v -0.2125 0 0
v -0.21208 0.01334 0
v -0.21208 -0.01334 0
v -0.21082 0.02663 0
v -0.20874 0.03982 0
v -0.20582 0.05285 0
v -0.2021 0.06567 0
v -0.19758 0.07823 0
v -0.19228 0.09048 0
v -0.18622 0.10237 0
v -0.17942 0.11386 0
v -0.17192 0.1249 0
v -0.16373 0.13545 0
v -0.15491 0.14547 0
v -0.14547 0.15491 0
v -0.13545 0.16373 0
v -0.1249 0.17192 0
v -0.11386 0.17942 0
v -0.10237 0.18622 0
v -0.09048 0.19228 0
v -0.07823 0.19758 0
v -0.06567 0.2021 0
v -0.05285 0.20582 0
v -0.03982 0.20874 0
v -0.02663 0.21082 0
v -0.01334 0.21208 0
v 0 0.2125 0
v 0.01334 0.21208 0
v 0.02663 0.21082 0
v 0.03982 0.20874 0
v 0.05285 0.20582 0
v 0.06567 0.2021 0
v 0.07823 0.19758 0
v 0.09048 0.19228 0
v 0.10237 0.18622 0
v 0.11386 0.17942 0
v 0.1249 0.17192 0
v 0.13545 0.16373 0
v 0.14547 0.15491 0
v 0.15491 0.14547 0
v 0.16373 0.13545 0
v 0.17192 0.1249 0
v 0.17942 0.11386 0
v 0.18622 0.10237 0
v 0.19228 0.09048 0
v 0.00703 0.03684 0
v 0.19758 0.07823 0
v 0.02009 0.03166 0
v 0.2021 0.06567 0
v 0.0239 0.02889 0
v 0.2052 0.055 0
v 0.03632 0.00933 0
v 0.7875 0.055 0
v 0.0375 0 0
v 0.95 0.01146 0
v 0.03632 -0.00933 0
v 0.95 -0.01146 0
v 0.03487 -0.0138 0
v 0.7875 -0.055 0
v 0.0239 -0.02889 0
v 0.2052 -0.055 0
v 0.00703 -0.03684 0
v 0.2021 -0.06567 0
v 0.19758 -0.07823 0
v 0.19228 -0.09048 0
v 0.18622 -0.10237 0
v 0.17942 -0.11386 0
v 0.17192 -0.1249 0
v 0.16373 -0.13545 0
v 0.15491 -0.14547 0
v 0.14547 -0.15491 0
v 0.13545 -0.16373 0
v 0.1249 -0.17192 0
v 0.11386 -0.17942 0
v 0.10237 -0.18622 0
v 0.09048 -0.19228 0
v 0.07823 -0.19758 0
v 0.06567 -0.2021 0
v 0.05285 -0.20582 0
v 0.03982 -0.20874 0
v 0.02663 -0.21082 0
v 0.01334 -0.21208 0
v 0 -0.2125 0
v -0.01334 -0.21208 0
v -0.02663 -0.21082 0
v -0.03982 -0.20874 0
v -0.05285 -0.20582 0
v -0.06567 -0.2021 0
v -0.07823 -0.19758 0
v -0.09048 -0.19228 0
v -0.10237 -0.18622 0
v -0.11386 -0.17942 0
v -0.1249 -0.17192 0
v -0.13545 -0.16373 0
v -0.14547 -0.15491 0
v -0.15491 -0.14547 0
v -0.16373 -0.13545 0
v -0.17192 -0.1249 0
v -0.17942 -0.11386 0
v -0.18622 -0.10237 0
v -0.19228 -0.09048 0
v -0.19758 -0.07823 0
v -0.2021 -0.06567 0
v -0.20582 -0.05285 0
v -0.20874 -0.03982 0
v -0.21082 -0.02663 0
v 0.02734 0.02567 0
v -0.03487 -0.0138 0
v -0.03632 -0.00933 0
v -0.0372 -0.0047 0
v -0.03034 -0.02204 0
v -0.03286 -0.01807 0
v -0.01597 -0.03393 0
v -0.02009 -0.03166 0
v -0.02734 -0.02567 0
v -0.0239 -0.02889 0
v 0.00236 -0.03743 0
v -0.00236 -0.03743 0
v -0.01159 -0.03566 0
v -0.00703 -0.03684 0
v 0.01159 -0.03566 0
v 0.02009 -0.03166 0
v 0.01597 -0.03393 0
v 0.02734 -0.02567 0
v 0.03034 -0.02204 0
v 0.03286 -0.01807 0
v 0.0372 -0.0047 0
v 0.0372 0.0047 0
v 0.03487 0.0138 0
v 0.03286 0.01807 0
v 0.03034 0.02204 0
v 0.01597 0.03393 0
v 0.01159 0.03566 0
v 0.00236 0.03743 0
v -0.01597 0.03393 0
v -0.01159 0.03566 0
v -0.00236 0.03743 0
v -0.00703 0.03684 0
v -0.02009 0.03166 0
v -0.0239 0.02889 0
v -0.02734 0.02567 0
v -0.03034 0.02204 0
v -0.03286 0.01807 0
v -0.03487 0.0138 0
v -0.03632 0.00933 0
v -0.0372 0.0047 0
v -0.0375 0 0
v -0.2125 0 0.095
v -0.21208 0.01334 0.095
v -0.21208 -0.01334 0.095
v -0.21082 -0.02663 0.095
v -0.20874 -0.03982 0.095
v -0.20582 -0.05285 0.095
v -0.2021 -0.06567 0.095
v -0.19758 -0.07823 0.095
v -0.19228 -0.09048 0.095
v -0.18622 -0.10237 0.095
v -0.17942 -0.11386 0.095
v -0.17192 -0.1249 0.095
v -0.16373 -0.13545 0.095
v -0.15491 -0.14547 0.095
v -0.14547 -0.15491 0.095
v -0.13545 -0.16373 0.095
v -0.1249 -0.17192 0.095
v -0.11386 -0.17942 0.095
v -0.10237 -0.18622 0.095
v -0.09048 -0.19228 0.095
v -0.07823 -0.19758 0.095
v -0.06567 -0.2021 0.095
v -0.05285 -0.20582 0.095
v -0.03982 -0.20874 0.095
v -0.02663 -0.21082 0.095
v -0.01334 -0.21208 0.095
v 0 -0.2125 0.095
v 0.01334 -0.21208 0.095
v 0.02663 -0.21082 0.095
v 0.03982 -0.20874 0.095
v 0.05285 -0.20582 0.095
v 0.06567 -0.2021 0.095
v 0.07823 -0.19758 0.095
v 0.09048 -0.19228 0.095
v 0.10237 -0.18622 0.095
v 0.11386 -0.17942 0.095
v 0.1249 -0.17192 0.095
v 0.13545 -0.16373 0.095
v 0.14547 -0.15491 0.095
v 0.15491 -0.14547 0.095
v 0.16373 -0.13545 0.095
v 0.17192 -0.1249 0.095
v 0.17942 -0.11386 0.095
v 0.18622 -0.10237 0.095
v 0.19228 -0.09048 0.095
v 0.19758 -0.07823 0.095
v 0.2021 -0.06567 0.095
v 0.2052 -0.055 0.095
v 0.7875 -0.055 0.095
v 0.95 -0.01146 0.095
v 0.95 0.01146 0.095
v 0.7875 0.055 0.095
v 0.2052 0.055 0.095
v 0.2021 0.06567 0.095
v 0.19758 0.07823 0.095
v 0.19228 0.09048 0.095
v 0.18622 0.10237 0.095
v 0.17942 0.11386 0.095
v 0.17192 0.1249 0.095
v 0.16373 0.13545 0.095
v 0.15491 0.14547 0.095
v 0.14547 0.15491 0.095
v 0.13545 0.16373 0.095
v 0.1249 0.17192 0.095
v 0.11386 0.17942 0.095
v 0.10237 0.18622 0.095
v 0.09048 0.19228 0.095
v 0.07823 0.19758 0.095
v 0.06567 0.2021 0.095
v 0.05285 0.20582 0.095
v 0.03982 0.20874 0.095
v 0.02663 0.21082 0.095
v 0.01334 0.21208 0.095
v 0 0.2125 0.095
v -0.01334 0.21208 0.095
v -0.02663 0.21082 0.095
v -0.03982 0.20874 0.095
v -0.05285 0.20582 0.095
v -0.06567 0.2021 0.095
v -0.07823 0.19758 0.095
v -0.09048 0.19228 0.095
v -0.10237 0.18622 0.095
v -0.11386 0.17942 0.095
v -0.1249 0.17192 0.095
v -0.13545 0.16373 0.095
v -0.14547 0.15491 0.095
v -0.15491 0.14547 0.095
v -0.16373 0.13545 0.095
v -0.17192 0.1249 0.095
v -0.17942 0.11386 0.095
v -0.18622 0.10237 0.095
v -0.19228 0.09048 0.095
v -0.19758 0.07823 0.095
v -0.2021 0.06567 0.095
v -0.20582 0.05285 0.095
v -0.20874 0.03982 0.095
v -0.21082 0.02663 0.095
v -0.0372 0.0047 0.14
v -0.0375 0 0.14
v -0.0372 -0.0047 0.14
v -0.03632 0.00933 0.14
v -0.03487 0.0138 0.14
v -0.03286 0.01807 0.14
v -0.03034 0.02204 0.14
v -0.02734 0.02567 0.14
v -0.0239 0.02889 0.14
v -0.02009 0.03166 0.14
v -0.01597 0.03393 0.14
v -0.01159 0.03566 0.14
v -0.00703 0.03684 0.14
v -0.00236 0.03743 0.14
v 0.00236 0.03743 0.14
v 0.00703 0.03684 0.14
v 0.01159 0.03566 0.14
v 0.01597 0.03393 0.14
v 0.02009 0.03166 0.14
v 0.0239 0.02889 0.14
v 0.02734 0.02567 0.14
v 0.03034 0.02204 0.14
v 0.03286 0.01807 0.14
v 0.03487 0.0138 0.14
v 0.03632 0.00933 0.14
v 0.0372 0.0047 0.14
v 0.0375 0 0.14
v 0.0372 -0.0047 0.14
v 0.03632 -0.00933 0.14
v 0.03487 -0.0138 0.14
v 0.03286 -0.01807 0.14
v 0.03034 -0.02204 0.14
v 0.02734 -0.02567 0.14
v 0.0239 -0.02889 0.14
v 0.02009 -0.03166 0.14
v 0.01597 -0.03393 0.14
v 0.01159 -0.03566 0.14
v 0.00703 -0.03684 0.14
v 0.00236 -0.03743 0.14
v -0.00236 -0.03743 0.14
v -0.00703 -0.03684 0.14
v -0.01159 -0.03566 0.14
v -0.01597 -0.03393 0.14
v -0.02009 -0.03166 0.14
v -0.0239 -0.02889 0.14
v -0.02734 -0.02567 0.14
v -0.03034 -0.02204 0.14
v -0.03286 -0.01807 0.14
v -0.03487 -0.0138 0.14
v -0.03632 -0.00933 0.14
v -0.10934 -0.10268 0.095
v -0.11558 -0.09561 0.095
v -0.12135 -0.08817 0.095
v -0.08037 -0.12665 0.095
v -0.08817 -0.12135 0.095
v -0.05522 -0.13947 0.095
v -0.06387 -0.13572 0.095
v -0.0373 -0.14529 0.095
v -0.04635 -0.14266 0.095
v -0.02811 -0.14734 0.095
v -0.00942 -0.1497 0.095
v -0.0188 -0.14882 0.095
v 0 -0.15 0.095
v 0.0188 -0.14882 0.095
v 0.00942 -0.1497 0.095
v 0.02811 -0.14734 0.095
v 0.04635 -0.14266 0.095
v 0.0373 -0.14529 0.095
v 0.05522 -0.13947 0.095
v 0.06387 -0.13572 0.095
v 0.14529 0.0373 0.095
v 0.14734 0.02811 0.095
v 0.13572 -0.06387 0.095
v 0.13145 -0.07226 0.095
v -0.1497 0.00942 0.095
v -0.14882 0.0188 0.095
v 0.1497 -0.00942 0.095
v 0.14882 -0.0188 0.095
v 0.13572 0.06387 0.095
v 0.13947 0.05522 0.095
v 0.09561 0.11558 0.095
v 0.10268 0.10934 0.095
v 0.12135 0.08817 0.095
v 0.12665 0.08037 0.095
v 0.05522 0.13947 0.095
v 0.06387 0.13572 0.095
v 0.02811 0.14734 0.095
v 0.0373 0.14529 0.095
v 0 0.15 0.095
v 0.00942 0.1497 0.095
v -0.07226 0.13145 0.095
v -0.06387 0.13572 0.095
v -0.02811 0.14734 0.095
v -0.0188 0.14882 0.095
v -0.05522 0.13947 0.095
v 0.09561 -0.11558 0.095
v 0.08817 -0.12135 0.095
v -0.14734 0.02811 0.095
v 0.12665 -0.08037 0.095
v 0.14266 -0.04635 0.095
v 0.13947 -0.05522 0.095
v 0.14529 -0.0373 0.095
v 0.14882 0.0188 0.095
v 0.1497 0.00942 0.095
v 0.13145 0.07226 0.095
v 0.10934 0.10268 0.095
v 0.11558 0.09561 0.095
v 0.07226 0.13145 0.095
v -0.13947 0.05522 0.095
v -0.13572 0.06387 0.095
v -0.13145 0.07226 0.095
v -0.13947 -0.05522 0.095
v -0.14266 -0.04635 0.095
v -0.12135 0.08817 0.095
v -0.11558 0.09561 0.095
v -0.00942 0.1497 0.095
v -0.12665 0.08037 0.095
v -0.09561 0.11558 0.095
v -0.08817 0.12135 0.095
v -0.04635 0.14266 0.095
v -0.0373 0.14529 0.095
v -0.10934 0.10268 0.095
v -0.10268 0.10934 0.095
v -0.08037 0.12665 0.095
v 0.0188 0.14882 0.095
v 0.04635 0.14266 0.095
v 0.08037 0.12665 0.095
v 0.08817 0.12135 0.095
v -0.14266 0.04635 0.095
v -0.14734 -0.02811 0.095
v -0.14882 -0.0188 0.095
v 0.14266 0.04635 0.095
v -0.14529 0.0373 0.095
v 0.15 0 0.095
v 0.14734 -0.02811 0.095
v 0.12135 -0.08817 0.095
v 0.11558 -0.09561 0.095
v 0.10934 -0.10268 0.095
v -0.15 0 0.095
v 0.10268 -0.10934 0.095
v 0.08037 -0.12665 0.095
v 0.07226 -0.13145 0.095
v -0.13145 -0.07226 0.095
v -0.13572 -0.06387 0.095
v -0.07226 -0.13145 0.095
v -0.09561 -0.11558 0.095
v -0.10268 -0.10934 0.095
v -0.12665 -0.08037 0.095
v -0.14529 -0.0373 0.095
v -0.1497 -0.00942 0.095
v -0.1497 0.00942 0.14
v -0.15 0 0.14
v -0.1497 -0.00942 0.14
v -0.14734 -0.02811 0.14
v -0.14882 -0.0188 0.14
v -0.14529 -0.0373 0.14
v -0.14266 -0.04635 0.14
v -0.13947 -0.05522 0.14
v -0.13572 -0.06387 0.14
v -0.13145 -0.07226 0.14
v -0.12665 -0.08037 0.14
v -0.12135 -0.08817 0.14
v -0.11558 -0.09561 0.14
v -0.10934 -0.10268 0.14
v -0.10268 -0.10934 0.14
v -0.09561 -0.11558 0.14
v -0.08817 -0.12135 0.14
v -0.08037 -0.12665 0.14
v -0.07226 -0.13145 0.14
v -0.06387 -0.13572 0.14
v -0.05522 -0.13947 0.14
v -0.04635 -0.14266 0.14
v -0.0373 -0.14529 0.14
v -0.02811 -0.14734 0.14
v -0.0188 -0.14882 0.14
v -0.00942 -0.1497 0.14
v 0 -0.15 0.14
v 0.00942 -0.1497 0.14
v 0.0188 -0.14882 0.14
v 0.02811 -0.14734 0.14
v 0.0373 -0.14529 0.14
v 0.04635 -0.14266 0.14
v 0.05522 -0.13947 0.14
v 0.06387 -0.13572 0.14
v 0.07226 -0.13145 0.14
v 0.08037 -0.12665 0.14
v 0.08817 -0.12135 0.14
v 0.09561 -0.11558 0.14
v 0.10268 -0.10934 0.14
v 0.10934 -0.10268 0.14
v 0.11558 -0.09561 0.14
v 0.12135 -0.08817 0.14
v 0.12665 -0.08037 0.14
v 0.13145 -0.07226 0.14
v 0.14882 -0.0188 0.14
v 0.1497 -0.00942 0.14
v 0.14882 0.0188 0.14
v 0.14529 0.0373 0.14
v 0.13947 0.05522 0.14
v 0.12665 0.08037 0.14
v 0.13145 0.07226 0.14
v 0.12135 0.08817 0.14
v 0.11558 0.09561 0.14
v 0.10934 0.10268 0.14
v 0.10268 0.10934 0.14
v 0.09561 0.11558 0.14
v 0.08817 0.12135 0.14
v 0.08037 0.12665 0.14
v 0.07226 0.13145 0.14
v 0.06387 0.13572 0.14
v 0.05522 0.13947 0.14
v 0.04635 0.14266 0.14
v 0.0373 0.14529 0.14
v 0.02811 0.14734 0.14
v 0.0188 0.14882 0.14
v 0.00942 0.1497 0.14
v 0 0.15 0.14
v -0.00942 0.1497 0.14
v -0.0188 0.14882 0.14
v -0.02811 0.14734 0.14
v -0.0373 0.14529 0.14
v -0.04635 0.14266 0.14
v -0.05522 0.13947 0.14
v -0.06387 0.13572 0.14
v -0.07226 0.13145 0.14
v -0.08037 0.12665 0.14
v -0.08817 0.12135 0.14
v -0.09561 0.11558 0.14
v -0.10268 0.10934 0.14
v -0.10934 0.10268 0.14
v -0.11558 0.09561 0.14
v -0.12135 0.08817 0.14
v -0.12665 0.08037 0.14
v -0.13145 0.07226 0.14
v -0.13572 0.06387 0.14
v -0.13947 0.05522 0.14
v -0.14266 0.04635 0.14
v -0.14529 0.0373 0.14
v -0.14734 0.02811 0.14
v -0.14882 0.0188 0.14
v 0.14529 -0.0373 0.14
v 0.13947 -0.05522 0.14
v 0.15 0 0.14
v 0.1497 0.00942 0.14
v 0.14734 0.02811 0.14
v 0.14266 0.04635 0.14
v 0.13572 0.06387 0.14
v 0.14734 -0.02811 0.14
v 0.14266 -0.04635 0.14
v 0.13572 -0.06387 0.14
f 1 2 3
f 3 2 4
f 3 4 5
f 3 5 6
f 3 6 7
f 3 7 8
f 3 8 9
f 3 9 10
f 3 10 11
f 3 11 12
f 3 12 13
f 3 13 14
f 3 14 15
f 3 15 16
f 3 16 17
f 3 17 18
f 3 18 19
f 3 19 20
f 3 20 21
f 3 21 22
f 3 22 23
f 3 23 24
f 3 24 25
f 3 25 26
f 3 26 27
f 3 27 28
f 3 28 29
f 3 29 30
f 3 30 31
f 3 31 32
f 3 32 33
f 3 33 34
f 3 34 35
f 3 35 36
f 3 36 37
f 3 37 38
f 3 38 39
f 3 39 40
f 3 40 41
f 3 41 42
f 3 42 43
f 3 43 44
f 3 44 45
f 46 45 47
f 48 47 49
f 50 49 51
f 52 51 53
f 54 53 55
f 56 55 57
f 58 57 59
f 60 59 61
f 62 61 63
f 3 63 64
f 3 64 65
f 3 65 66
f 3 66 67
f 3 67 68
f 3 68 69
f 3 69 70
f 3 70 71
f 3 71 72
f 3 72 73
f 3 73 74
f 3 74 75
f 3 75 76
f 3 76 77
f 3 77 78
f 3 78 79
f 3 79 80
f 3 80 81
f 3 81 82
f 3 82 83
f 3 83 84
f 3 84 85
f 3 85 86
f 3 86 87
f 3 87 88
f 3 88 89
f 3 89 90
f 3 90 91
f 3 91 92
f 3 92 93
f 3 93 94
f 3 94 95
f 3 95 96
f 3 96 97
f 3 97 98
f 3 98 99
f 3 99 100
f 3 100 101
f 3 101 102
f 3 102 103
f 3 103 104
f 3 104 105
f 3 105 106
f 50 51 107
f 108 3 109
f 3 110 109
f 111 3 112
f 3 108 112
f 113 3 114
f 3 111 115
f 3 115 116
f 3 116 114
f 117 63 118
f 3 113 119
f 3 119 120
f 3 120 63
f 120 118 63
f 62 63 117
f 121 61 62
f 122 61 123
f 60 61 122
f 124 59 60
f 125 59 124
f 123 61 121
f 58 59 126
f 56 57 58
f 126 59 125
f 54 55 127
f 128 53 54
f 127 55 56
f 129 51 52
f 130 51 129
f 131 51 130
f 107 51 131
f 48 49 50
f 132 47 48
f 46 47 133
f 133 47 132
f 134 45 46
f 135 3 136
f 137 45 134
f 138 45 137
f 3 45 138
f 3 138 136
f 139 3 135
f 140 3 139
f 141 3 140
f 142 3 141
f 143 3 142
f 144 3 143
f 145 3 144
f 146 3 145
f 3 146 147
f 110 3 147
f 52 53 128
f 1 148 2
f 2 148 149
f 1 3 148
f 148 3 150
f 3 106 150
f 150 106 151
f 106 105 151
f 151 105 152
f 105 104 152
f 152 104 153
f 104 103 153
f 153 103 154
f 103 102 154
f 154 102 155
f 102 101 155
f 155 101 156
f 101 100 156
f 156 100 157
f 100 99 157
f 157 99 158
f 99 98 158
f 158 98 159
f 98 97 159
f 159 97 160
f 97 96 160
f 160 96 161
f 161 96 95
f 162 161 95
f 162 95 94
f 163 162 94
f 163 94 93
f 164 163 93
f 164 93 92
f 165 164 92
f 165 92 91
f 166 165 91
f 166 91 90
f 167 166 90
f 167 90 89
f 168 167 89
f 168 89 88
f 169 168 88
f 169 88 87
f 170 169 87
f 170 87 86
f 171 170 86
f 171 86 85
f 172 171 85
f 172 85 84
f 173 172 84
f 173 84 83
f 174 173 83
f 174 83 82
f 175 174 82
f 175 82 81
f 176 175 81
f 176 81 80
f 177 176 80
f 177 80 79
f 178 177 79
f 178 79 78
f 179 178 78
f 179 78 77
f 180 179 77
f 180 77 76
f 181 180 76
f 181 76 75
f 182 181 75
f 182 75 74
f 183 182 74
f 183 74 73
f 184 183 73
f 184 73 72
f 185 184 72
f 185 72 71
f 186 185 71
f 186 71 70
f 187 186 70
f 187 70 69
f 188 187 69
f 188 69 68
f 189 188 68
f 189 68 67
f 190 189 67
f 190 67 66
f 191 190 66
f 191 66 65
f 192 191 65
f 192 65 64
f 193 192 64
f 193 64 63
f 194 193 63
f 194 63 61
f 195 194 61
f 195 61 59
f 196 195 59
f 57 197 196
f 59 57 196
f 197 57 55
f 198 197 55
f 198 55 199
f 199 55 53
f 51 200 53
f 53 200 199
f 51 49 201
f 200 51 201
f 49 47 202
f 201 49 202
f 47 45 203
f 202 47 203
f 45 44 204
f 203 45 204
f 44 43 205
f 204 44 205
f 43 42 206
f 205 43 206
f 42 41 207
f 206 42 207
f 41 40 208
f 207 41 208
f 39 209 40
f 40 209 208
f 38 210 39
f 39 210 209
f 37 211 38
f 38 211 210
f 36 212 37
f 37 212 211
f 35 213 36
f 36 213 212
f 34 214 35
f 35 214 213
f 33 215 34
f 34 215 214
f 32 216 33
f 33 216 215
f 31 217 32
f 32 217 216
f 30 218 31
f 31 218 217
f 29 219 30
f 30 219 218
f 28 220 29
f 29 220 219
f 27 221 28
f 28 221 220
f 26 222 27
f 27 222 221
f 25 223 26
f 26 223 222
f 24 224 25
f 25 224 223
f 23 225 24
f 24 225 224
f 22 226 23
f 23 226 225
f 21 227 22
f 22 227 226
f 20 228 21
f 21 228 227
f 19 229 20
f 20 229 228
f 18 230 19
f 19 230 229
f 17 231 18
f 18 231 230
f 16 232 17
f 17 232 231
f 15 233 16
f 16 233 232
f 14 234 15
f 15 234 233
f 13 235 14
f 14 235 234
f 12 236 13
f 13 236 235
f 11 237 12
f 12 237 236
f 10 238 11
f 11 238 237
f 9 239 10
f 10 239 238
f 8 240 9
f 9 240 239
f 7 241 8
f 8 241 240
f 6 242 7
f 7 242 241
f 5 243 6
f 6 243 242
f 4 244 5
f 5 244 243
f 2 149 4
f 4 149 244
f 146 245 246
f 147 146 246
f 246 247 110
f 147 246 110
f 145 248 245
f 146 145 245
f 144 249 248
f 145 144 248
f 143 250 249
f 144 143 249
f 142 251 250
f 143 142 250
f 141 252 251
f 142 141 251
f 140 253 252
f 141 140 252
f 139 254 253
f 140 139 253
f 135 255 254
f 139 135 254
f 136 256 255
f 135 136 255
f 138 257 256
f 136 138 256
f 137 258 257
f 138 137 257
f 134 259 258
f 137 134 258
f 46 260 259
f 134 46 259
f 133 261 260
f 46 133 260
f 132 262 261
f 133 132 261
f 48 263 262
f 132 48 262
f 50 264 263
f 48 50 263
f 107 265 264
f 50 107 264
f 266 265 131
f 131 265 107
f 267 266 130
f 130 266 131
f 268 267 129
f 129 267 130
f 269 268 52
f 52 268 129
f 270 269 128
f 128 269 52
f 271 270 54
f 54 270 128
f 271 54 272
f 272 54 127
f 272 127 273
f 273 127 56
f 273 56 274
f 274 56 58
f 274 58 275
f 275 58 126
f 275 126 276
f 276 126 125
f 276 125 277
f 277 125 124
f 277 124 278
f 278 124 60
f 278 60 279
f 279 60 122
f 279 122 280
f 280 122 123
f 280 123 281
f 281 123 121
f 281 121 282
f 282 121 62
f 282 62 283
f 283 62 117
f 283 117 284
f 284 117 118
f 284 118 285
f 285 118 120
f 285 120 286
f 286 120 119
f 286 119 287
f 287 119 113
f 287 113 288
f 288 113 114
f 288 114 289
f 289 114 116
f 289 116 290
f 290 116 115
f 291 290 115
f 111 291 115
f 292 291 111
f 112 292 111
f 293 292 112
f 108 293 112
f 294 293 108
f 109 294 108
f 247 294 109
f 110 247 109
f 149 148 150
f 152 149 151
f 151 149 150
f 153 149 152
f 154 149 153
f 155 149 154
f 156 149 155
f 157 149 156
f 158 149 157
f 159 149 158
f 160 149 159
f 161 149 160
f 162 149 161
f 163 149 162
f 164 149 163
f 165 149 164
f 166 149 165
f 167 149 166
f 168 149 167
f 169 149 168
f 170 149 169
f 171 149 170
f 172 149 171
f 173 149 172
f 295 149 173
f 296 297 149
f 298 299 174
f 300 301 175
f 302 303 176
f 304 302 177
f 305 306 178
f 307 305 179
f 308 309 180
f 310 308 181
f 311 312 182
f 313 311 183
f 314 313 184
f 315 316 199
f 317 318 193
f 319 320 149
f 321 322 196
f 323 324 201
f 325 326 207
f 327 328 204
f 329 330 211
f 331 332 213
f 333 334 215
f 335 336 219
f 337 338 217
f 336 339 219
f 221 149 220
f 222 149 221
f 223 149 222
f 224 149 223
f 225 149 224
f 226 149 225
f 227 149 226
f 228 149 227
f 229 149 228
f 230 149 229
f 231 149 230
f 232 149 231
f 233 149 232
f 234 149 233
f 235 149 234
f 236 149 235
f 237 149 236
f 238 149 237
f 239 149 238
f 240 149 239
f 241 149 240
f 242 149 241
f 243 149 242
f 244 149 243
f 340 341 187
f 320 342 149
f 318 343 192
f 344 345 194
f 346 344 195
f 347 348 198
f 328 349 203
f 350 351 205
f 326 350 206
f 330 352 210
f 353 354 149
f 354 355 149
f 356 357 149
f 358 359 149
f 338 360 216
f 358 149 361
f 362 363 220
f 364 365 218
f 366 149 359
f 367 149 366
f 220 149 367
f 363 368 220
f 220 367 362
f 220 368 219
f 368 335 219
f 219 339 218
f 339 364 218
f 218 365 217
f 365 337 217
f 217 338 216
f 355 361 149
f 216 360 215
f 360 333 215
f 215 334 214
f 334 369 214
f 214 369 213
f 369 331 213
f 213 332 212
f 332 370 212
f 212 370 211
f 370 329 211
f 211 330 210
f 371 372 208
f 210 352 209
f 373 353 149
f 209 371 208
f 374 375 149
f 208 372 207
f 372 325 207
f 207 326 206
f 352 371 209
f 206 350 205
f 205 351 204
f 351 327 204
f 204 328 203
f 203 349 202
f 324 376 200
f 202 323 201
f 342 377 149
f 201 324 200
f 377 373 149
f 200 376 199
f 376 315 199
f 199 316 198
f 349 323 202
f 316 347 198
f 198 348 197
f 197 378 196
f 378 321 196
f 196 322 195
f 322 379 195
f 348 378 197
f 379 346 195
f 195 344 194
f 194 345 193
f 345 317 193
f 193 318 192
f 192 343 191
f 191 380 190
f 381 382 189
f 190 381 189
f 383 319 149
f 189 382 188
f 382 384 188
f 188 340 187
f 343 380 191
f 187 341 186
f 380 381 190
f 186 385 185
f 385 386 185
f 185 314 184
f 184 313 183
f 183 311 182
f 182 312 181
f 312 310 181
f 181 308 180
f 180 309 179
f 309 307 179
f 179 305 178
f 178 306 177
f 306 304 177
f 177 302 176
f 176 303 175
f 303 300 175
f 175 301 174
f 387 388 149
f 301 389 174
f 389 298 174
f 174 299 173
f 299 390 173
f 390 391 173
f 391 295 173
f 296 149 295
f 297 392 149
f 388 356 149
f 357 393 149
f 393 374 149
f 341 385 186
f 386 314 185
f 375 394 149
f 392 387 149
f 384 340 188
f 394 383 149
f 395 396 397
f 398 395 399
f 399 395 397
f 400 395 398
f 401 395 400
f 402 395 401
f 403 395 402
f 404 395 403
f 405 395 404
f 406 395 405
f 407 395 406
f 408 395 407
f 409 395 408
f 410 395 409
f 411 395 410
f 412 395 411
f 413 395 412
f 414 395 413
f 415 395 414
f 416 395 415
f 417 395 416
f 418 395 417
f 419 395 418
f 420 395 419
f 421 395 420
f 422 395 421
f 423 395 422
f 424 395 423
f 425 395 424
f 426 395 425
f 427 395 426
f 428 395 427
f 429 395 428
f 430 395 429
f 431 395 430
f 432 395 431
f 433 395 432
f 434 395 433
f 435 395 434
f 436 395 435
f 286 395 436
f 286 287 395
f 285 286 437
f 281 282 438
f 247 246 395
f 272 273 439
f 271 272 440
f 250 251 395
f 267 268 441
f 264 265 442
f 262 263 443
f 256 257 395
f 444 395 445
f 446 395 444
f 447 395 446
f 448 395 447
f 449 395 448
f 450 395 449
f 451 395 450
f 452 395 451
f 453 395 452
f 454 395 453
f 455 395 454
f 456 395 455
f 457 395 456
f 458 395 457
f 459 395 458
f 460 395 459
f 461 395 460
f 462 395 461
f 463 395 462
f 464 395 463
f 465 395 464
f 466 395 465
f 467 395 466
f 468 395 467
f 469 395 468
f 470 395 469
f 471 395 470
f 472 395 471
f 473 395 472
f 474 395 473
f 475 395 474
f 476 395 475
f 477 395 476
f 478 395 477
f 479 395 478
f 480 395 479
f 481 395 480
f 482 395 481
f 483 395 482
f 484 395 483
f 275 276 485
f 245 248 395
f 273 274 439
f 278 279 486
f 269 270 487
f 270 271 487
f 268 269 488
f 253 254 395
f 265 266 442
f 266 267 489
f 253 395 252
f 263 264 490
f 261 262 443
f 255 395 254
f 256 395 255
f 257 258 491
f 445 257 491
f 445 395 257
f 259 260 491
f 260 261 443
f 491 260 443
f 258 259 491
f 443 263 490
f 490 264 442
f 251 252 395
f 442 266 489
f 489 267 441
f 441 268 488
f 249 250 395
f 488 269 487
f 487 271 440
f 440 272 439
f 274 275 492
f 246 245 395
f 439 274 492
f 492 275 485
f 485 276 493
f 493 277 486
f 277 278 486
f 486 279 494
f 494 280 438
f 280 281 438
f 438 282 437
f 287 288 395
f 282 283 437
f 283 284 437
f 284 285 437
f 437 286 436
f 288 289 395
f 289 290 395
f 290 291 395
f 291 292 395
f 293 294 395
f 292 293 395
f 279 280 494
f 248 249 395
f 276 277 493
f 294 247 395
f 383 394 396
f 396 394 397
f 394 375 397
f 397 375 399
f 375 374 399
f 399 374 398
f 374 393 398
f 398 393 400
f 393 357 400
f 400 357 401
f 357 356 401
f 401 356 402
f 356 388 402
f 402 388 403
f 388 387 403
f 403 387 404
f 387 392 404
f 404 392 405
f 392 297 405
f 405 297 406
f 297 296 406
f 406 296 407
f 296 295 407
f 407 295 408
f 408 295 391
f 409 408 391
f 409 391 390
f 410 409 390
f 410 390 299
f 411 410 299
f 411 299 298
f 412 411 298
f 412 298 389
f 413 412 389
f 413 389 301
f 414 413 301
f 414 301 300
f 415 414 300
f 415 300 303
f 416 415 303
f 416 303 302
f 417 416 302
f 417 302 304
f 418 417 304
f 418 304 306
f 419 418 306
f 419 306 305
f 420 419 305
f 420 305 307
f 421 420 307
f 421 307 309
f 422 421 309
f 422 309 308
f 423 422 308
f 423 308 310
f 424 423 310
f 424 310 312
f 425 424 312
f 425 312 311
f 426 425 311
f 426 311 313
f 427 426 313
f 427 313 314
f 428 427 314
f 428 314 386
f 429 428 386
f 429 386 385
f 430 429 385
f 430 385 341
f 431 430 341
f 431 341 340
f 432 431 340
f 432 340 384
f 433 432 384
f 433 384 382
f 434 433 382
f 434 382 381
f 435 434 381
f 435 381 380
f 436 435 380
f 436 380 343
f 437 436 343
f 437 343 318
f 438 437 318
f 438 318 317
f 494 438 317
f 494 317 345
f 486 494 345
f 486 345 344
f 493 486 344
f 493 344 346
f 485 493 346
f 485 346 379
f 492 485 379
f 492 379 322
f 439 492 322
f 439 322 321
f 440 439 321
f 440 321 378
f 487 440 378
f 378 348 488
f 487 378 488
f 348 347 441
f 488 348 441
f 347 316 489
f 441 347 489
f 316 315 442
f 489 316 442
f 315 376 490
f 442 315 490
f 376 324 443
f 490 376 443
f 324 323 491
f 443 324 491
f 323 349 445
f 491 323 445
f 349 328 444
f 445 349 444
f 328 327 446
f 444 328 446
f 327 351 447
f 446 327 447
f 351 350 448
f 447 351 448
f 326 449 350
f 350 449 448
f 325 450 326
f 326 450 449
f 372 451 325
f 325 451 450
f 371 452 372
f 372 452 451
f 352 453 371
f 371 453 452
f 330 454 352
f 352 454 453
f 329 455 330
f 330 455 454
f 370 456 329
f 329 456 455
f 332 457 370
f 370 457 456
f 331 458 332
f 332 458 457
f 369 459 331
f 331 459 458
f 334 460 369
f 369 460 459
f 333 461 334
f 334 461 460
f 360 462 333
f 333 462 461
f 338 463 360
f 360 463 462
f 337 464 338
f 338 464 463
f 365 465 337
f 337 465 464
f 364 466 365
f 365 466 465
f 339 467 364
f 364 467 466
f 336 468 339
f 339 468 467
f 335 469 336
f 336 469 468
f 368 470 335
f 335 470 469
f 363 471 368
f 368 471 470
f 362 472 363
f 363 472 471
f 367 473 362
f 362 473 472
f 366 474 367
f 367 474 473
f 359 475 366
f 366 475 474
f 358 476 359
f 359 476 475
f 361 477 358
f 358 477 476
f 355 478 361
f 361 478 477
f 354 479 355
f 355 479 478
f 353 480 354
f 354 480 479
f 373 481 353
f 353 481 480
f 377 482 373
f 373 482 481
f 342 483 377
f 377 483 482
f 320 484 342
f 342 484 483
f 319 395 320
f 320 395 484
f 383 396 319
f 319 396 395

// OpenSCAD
indicatorHeight = 0.095;
indicatorWidth  = 0.110;
indicatorLength = 0.950;

difference() {
  union() {
    translate([indicatorLength/2, 0, indicatorHeight/2])
      cube([indicatorLength, indicatorWidth, indicatorHeight], center = true);

    cylinder(h = indicatorHeight + 0.045, d = 0.300, center = false, $fn = 100);

    cylinder(h = indicatorHeight, d = 0.425, center = false, $fn = 100);
  }

  cylinder(h = 0.500, d = 0.075, center = true, $fn = 50);

  translate([indicatorLength + 0.05, indicatorWidth/2, 0])
    rotate([0,0,75])
     cube([indicatorWidth, indicatorLength/2, 2.5*indicatorHeight], center = true);

  translate([indicatorLength + 0.05, -indicatorWidth/2, 0])
    rotate([0,0,-75])
       cube([indicatorWidth, indicatorLength/2, 2.5*indicatorHeight], center = true);

}
